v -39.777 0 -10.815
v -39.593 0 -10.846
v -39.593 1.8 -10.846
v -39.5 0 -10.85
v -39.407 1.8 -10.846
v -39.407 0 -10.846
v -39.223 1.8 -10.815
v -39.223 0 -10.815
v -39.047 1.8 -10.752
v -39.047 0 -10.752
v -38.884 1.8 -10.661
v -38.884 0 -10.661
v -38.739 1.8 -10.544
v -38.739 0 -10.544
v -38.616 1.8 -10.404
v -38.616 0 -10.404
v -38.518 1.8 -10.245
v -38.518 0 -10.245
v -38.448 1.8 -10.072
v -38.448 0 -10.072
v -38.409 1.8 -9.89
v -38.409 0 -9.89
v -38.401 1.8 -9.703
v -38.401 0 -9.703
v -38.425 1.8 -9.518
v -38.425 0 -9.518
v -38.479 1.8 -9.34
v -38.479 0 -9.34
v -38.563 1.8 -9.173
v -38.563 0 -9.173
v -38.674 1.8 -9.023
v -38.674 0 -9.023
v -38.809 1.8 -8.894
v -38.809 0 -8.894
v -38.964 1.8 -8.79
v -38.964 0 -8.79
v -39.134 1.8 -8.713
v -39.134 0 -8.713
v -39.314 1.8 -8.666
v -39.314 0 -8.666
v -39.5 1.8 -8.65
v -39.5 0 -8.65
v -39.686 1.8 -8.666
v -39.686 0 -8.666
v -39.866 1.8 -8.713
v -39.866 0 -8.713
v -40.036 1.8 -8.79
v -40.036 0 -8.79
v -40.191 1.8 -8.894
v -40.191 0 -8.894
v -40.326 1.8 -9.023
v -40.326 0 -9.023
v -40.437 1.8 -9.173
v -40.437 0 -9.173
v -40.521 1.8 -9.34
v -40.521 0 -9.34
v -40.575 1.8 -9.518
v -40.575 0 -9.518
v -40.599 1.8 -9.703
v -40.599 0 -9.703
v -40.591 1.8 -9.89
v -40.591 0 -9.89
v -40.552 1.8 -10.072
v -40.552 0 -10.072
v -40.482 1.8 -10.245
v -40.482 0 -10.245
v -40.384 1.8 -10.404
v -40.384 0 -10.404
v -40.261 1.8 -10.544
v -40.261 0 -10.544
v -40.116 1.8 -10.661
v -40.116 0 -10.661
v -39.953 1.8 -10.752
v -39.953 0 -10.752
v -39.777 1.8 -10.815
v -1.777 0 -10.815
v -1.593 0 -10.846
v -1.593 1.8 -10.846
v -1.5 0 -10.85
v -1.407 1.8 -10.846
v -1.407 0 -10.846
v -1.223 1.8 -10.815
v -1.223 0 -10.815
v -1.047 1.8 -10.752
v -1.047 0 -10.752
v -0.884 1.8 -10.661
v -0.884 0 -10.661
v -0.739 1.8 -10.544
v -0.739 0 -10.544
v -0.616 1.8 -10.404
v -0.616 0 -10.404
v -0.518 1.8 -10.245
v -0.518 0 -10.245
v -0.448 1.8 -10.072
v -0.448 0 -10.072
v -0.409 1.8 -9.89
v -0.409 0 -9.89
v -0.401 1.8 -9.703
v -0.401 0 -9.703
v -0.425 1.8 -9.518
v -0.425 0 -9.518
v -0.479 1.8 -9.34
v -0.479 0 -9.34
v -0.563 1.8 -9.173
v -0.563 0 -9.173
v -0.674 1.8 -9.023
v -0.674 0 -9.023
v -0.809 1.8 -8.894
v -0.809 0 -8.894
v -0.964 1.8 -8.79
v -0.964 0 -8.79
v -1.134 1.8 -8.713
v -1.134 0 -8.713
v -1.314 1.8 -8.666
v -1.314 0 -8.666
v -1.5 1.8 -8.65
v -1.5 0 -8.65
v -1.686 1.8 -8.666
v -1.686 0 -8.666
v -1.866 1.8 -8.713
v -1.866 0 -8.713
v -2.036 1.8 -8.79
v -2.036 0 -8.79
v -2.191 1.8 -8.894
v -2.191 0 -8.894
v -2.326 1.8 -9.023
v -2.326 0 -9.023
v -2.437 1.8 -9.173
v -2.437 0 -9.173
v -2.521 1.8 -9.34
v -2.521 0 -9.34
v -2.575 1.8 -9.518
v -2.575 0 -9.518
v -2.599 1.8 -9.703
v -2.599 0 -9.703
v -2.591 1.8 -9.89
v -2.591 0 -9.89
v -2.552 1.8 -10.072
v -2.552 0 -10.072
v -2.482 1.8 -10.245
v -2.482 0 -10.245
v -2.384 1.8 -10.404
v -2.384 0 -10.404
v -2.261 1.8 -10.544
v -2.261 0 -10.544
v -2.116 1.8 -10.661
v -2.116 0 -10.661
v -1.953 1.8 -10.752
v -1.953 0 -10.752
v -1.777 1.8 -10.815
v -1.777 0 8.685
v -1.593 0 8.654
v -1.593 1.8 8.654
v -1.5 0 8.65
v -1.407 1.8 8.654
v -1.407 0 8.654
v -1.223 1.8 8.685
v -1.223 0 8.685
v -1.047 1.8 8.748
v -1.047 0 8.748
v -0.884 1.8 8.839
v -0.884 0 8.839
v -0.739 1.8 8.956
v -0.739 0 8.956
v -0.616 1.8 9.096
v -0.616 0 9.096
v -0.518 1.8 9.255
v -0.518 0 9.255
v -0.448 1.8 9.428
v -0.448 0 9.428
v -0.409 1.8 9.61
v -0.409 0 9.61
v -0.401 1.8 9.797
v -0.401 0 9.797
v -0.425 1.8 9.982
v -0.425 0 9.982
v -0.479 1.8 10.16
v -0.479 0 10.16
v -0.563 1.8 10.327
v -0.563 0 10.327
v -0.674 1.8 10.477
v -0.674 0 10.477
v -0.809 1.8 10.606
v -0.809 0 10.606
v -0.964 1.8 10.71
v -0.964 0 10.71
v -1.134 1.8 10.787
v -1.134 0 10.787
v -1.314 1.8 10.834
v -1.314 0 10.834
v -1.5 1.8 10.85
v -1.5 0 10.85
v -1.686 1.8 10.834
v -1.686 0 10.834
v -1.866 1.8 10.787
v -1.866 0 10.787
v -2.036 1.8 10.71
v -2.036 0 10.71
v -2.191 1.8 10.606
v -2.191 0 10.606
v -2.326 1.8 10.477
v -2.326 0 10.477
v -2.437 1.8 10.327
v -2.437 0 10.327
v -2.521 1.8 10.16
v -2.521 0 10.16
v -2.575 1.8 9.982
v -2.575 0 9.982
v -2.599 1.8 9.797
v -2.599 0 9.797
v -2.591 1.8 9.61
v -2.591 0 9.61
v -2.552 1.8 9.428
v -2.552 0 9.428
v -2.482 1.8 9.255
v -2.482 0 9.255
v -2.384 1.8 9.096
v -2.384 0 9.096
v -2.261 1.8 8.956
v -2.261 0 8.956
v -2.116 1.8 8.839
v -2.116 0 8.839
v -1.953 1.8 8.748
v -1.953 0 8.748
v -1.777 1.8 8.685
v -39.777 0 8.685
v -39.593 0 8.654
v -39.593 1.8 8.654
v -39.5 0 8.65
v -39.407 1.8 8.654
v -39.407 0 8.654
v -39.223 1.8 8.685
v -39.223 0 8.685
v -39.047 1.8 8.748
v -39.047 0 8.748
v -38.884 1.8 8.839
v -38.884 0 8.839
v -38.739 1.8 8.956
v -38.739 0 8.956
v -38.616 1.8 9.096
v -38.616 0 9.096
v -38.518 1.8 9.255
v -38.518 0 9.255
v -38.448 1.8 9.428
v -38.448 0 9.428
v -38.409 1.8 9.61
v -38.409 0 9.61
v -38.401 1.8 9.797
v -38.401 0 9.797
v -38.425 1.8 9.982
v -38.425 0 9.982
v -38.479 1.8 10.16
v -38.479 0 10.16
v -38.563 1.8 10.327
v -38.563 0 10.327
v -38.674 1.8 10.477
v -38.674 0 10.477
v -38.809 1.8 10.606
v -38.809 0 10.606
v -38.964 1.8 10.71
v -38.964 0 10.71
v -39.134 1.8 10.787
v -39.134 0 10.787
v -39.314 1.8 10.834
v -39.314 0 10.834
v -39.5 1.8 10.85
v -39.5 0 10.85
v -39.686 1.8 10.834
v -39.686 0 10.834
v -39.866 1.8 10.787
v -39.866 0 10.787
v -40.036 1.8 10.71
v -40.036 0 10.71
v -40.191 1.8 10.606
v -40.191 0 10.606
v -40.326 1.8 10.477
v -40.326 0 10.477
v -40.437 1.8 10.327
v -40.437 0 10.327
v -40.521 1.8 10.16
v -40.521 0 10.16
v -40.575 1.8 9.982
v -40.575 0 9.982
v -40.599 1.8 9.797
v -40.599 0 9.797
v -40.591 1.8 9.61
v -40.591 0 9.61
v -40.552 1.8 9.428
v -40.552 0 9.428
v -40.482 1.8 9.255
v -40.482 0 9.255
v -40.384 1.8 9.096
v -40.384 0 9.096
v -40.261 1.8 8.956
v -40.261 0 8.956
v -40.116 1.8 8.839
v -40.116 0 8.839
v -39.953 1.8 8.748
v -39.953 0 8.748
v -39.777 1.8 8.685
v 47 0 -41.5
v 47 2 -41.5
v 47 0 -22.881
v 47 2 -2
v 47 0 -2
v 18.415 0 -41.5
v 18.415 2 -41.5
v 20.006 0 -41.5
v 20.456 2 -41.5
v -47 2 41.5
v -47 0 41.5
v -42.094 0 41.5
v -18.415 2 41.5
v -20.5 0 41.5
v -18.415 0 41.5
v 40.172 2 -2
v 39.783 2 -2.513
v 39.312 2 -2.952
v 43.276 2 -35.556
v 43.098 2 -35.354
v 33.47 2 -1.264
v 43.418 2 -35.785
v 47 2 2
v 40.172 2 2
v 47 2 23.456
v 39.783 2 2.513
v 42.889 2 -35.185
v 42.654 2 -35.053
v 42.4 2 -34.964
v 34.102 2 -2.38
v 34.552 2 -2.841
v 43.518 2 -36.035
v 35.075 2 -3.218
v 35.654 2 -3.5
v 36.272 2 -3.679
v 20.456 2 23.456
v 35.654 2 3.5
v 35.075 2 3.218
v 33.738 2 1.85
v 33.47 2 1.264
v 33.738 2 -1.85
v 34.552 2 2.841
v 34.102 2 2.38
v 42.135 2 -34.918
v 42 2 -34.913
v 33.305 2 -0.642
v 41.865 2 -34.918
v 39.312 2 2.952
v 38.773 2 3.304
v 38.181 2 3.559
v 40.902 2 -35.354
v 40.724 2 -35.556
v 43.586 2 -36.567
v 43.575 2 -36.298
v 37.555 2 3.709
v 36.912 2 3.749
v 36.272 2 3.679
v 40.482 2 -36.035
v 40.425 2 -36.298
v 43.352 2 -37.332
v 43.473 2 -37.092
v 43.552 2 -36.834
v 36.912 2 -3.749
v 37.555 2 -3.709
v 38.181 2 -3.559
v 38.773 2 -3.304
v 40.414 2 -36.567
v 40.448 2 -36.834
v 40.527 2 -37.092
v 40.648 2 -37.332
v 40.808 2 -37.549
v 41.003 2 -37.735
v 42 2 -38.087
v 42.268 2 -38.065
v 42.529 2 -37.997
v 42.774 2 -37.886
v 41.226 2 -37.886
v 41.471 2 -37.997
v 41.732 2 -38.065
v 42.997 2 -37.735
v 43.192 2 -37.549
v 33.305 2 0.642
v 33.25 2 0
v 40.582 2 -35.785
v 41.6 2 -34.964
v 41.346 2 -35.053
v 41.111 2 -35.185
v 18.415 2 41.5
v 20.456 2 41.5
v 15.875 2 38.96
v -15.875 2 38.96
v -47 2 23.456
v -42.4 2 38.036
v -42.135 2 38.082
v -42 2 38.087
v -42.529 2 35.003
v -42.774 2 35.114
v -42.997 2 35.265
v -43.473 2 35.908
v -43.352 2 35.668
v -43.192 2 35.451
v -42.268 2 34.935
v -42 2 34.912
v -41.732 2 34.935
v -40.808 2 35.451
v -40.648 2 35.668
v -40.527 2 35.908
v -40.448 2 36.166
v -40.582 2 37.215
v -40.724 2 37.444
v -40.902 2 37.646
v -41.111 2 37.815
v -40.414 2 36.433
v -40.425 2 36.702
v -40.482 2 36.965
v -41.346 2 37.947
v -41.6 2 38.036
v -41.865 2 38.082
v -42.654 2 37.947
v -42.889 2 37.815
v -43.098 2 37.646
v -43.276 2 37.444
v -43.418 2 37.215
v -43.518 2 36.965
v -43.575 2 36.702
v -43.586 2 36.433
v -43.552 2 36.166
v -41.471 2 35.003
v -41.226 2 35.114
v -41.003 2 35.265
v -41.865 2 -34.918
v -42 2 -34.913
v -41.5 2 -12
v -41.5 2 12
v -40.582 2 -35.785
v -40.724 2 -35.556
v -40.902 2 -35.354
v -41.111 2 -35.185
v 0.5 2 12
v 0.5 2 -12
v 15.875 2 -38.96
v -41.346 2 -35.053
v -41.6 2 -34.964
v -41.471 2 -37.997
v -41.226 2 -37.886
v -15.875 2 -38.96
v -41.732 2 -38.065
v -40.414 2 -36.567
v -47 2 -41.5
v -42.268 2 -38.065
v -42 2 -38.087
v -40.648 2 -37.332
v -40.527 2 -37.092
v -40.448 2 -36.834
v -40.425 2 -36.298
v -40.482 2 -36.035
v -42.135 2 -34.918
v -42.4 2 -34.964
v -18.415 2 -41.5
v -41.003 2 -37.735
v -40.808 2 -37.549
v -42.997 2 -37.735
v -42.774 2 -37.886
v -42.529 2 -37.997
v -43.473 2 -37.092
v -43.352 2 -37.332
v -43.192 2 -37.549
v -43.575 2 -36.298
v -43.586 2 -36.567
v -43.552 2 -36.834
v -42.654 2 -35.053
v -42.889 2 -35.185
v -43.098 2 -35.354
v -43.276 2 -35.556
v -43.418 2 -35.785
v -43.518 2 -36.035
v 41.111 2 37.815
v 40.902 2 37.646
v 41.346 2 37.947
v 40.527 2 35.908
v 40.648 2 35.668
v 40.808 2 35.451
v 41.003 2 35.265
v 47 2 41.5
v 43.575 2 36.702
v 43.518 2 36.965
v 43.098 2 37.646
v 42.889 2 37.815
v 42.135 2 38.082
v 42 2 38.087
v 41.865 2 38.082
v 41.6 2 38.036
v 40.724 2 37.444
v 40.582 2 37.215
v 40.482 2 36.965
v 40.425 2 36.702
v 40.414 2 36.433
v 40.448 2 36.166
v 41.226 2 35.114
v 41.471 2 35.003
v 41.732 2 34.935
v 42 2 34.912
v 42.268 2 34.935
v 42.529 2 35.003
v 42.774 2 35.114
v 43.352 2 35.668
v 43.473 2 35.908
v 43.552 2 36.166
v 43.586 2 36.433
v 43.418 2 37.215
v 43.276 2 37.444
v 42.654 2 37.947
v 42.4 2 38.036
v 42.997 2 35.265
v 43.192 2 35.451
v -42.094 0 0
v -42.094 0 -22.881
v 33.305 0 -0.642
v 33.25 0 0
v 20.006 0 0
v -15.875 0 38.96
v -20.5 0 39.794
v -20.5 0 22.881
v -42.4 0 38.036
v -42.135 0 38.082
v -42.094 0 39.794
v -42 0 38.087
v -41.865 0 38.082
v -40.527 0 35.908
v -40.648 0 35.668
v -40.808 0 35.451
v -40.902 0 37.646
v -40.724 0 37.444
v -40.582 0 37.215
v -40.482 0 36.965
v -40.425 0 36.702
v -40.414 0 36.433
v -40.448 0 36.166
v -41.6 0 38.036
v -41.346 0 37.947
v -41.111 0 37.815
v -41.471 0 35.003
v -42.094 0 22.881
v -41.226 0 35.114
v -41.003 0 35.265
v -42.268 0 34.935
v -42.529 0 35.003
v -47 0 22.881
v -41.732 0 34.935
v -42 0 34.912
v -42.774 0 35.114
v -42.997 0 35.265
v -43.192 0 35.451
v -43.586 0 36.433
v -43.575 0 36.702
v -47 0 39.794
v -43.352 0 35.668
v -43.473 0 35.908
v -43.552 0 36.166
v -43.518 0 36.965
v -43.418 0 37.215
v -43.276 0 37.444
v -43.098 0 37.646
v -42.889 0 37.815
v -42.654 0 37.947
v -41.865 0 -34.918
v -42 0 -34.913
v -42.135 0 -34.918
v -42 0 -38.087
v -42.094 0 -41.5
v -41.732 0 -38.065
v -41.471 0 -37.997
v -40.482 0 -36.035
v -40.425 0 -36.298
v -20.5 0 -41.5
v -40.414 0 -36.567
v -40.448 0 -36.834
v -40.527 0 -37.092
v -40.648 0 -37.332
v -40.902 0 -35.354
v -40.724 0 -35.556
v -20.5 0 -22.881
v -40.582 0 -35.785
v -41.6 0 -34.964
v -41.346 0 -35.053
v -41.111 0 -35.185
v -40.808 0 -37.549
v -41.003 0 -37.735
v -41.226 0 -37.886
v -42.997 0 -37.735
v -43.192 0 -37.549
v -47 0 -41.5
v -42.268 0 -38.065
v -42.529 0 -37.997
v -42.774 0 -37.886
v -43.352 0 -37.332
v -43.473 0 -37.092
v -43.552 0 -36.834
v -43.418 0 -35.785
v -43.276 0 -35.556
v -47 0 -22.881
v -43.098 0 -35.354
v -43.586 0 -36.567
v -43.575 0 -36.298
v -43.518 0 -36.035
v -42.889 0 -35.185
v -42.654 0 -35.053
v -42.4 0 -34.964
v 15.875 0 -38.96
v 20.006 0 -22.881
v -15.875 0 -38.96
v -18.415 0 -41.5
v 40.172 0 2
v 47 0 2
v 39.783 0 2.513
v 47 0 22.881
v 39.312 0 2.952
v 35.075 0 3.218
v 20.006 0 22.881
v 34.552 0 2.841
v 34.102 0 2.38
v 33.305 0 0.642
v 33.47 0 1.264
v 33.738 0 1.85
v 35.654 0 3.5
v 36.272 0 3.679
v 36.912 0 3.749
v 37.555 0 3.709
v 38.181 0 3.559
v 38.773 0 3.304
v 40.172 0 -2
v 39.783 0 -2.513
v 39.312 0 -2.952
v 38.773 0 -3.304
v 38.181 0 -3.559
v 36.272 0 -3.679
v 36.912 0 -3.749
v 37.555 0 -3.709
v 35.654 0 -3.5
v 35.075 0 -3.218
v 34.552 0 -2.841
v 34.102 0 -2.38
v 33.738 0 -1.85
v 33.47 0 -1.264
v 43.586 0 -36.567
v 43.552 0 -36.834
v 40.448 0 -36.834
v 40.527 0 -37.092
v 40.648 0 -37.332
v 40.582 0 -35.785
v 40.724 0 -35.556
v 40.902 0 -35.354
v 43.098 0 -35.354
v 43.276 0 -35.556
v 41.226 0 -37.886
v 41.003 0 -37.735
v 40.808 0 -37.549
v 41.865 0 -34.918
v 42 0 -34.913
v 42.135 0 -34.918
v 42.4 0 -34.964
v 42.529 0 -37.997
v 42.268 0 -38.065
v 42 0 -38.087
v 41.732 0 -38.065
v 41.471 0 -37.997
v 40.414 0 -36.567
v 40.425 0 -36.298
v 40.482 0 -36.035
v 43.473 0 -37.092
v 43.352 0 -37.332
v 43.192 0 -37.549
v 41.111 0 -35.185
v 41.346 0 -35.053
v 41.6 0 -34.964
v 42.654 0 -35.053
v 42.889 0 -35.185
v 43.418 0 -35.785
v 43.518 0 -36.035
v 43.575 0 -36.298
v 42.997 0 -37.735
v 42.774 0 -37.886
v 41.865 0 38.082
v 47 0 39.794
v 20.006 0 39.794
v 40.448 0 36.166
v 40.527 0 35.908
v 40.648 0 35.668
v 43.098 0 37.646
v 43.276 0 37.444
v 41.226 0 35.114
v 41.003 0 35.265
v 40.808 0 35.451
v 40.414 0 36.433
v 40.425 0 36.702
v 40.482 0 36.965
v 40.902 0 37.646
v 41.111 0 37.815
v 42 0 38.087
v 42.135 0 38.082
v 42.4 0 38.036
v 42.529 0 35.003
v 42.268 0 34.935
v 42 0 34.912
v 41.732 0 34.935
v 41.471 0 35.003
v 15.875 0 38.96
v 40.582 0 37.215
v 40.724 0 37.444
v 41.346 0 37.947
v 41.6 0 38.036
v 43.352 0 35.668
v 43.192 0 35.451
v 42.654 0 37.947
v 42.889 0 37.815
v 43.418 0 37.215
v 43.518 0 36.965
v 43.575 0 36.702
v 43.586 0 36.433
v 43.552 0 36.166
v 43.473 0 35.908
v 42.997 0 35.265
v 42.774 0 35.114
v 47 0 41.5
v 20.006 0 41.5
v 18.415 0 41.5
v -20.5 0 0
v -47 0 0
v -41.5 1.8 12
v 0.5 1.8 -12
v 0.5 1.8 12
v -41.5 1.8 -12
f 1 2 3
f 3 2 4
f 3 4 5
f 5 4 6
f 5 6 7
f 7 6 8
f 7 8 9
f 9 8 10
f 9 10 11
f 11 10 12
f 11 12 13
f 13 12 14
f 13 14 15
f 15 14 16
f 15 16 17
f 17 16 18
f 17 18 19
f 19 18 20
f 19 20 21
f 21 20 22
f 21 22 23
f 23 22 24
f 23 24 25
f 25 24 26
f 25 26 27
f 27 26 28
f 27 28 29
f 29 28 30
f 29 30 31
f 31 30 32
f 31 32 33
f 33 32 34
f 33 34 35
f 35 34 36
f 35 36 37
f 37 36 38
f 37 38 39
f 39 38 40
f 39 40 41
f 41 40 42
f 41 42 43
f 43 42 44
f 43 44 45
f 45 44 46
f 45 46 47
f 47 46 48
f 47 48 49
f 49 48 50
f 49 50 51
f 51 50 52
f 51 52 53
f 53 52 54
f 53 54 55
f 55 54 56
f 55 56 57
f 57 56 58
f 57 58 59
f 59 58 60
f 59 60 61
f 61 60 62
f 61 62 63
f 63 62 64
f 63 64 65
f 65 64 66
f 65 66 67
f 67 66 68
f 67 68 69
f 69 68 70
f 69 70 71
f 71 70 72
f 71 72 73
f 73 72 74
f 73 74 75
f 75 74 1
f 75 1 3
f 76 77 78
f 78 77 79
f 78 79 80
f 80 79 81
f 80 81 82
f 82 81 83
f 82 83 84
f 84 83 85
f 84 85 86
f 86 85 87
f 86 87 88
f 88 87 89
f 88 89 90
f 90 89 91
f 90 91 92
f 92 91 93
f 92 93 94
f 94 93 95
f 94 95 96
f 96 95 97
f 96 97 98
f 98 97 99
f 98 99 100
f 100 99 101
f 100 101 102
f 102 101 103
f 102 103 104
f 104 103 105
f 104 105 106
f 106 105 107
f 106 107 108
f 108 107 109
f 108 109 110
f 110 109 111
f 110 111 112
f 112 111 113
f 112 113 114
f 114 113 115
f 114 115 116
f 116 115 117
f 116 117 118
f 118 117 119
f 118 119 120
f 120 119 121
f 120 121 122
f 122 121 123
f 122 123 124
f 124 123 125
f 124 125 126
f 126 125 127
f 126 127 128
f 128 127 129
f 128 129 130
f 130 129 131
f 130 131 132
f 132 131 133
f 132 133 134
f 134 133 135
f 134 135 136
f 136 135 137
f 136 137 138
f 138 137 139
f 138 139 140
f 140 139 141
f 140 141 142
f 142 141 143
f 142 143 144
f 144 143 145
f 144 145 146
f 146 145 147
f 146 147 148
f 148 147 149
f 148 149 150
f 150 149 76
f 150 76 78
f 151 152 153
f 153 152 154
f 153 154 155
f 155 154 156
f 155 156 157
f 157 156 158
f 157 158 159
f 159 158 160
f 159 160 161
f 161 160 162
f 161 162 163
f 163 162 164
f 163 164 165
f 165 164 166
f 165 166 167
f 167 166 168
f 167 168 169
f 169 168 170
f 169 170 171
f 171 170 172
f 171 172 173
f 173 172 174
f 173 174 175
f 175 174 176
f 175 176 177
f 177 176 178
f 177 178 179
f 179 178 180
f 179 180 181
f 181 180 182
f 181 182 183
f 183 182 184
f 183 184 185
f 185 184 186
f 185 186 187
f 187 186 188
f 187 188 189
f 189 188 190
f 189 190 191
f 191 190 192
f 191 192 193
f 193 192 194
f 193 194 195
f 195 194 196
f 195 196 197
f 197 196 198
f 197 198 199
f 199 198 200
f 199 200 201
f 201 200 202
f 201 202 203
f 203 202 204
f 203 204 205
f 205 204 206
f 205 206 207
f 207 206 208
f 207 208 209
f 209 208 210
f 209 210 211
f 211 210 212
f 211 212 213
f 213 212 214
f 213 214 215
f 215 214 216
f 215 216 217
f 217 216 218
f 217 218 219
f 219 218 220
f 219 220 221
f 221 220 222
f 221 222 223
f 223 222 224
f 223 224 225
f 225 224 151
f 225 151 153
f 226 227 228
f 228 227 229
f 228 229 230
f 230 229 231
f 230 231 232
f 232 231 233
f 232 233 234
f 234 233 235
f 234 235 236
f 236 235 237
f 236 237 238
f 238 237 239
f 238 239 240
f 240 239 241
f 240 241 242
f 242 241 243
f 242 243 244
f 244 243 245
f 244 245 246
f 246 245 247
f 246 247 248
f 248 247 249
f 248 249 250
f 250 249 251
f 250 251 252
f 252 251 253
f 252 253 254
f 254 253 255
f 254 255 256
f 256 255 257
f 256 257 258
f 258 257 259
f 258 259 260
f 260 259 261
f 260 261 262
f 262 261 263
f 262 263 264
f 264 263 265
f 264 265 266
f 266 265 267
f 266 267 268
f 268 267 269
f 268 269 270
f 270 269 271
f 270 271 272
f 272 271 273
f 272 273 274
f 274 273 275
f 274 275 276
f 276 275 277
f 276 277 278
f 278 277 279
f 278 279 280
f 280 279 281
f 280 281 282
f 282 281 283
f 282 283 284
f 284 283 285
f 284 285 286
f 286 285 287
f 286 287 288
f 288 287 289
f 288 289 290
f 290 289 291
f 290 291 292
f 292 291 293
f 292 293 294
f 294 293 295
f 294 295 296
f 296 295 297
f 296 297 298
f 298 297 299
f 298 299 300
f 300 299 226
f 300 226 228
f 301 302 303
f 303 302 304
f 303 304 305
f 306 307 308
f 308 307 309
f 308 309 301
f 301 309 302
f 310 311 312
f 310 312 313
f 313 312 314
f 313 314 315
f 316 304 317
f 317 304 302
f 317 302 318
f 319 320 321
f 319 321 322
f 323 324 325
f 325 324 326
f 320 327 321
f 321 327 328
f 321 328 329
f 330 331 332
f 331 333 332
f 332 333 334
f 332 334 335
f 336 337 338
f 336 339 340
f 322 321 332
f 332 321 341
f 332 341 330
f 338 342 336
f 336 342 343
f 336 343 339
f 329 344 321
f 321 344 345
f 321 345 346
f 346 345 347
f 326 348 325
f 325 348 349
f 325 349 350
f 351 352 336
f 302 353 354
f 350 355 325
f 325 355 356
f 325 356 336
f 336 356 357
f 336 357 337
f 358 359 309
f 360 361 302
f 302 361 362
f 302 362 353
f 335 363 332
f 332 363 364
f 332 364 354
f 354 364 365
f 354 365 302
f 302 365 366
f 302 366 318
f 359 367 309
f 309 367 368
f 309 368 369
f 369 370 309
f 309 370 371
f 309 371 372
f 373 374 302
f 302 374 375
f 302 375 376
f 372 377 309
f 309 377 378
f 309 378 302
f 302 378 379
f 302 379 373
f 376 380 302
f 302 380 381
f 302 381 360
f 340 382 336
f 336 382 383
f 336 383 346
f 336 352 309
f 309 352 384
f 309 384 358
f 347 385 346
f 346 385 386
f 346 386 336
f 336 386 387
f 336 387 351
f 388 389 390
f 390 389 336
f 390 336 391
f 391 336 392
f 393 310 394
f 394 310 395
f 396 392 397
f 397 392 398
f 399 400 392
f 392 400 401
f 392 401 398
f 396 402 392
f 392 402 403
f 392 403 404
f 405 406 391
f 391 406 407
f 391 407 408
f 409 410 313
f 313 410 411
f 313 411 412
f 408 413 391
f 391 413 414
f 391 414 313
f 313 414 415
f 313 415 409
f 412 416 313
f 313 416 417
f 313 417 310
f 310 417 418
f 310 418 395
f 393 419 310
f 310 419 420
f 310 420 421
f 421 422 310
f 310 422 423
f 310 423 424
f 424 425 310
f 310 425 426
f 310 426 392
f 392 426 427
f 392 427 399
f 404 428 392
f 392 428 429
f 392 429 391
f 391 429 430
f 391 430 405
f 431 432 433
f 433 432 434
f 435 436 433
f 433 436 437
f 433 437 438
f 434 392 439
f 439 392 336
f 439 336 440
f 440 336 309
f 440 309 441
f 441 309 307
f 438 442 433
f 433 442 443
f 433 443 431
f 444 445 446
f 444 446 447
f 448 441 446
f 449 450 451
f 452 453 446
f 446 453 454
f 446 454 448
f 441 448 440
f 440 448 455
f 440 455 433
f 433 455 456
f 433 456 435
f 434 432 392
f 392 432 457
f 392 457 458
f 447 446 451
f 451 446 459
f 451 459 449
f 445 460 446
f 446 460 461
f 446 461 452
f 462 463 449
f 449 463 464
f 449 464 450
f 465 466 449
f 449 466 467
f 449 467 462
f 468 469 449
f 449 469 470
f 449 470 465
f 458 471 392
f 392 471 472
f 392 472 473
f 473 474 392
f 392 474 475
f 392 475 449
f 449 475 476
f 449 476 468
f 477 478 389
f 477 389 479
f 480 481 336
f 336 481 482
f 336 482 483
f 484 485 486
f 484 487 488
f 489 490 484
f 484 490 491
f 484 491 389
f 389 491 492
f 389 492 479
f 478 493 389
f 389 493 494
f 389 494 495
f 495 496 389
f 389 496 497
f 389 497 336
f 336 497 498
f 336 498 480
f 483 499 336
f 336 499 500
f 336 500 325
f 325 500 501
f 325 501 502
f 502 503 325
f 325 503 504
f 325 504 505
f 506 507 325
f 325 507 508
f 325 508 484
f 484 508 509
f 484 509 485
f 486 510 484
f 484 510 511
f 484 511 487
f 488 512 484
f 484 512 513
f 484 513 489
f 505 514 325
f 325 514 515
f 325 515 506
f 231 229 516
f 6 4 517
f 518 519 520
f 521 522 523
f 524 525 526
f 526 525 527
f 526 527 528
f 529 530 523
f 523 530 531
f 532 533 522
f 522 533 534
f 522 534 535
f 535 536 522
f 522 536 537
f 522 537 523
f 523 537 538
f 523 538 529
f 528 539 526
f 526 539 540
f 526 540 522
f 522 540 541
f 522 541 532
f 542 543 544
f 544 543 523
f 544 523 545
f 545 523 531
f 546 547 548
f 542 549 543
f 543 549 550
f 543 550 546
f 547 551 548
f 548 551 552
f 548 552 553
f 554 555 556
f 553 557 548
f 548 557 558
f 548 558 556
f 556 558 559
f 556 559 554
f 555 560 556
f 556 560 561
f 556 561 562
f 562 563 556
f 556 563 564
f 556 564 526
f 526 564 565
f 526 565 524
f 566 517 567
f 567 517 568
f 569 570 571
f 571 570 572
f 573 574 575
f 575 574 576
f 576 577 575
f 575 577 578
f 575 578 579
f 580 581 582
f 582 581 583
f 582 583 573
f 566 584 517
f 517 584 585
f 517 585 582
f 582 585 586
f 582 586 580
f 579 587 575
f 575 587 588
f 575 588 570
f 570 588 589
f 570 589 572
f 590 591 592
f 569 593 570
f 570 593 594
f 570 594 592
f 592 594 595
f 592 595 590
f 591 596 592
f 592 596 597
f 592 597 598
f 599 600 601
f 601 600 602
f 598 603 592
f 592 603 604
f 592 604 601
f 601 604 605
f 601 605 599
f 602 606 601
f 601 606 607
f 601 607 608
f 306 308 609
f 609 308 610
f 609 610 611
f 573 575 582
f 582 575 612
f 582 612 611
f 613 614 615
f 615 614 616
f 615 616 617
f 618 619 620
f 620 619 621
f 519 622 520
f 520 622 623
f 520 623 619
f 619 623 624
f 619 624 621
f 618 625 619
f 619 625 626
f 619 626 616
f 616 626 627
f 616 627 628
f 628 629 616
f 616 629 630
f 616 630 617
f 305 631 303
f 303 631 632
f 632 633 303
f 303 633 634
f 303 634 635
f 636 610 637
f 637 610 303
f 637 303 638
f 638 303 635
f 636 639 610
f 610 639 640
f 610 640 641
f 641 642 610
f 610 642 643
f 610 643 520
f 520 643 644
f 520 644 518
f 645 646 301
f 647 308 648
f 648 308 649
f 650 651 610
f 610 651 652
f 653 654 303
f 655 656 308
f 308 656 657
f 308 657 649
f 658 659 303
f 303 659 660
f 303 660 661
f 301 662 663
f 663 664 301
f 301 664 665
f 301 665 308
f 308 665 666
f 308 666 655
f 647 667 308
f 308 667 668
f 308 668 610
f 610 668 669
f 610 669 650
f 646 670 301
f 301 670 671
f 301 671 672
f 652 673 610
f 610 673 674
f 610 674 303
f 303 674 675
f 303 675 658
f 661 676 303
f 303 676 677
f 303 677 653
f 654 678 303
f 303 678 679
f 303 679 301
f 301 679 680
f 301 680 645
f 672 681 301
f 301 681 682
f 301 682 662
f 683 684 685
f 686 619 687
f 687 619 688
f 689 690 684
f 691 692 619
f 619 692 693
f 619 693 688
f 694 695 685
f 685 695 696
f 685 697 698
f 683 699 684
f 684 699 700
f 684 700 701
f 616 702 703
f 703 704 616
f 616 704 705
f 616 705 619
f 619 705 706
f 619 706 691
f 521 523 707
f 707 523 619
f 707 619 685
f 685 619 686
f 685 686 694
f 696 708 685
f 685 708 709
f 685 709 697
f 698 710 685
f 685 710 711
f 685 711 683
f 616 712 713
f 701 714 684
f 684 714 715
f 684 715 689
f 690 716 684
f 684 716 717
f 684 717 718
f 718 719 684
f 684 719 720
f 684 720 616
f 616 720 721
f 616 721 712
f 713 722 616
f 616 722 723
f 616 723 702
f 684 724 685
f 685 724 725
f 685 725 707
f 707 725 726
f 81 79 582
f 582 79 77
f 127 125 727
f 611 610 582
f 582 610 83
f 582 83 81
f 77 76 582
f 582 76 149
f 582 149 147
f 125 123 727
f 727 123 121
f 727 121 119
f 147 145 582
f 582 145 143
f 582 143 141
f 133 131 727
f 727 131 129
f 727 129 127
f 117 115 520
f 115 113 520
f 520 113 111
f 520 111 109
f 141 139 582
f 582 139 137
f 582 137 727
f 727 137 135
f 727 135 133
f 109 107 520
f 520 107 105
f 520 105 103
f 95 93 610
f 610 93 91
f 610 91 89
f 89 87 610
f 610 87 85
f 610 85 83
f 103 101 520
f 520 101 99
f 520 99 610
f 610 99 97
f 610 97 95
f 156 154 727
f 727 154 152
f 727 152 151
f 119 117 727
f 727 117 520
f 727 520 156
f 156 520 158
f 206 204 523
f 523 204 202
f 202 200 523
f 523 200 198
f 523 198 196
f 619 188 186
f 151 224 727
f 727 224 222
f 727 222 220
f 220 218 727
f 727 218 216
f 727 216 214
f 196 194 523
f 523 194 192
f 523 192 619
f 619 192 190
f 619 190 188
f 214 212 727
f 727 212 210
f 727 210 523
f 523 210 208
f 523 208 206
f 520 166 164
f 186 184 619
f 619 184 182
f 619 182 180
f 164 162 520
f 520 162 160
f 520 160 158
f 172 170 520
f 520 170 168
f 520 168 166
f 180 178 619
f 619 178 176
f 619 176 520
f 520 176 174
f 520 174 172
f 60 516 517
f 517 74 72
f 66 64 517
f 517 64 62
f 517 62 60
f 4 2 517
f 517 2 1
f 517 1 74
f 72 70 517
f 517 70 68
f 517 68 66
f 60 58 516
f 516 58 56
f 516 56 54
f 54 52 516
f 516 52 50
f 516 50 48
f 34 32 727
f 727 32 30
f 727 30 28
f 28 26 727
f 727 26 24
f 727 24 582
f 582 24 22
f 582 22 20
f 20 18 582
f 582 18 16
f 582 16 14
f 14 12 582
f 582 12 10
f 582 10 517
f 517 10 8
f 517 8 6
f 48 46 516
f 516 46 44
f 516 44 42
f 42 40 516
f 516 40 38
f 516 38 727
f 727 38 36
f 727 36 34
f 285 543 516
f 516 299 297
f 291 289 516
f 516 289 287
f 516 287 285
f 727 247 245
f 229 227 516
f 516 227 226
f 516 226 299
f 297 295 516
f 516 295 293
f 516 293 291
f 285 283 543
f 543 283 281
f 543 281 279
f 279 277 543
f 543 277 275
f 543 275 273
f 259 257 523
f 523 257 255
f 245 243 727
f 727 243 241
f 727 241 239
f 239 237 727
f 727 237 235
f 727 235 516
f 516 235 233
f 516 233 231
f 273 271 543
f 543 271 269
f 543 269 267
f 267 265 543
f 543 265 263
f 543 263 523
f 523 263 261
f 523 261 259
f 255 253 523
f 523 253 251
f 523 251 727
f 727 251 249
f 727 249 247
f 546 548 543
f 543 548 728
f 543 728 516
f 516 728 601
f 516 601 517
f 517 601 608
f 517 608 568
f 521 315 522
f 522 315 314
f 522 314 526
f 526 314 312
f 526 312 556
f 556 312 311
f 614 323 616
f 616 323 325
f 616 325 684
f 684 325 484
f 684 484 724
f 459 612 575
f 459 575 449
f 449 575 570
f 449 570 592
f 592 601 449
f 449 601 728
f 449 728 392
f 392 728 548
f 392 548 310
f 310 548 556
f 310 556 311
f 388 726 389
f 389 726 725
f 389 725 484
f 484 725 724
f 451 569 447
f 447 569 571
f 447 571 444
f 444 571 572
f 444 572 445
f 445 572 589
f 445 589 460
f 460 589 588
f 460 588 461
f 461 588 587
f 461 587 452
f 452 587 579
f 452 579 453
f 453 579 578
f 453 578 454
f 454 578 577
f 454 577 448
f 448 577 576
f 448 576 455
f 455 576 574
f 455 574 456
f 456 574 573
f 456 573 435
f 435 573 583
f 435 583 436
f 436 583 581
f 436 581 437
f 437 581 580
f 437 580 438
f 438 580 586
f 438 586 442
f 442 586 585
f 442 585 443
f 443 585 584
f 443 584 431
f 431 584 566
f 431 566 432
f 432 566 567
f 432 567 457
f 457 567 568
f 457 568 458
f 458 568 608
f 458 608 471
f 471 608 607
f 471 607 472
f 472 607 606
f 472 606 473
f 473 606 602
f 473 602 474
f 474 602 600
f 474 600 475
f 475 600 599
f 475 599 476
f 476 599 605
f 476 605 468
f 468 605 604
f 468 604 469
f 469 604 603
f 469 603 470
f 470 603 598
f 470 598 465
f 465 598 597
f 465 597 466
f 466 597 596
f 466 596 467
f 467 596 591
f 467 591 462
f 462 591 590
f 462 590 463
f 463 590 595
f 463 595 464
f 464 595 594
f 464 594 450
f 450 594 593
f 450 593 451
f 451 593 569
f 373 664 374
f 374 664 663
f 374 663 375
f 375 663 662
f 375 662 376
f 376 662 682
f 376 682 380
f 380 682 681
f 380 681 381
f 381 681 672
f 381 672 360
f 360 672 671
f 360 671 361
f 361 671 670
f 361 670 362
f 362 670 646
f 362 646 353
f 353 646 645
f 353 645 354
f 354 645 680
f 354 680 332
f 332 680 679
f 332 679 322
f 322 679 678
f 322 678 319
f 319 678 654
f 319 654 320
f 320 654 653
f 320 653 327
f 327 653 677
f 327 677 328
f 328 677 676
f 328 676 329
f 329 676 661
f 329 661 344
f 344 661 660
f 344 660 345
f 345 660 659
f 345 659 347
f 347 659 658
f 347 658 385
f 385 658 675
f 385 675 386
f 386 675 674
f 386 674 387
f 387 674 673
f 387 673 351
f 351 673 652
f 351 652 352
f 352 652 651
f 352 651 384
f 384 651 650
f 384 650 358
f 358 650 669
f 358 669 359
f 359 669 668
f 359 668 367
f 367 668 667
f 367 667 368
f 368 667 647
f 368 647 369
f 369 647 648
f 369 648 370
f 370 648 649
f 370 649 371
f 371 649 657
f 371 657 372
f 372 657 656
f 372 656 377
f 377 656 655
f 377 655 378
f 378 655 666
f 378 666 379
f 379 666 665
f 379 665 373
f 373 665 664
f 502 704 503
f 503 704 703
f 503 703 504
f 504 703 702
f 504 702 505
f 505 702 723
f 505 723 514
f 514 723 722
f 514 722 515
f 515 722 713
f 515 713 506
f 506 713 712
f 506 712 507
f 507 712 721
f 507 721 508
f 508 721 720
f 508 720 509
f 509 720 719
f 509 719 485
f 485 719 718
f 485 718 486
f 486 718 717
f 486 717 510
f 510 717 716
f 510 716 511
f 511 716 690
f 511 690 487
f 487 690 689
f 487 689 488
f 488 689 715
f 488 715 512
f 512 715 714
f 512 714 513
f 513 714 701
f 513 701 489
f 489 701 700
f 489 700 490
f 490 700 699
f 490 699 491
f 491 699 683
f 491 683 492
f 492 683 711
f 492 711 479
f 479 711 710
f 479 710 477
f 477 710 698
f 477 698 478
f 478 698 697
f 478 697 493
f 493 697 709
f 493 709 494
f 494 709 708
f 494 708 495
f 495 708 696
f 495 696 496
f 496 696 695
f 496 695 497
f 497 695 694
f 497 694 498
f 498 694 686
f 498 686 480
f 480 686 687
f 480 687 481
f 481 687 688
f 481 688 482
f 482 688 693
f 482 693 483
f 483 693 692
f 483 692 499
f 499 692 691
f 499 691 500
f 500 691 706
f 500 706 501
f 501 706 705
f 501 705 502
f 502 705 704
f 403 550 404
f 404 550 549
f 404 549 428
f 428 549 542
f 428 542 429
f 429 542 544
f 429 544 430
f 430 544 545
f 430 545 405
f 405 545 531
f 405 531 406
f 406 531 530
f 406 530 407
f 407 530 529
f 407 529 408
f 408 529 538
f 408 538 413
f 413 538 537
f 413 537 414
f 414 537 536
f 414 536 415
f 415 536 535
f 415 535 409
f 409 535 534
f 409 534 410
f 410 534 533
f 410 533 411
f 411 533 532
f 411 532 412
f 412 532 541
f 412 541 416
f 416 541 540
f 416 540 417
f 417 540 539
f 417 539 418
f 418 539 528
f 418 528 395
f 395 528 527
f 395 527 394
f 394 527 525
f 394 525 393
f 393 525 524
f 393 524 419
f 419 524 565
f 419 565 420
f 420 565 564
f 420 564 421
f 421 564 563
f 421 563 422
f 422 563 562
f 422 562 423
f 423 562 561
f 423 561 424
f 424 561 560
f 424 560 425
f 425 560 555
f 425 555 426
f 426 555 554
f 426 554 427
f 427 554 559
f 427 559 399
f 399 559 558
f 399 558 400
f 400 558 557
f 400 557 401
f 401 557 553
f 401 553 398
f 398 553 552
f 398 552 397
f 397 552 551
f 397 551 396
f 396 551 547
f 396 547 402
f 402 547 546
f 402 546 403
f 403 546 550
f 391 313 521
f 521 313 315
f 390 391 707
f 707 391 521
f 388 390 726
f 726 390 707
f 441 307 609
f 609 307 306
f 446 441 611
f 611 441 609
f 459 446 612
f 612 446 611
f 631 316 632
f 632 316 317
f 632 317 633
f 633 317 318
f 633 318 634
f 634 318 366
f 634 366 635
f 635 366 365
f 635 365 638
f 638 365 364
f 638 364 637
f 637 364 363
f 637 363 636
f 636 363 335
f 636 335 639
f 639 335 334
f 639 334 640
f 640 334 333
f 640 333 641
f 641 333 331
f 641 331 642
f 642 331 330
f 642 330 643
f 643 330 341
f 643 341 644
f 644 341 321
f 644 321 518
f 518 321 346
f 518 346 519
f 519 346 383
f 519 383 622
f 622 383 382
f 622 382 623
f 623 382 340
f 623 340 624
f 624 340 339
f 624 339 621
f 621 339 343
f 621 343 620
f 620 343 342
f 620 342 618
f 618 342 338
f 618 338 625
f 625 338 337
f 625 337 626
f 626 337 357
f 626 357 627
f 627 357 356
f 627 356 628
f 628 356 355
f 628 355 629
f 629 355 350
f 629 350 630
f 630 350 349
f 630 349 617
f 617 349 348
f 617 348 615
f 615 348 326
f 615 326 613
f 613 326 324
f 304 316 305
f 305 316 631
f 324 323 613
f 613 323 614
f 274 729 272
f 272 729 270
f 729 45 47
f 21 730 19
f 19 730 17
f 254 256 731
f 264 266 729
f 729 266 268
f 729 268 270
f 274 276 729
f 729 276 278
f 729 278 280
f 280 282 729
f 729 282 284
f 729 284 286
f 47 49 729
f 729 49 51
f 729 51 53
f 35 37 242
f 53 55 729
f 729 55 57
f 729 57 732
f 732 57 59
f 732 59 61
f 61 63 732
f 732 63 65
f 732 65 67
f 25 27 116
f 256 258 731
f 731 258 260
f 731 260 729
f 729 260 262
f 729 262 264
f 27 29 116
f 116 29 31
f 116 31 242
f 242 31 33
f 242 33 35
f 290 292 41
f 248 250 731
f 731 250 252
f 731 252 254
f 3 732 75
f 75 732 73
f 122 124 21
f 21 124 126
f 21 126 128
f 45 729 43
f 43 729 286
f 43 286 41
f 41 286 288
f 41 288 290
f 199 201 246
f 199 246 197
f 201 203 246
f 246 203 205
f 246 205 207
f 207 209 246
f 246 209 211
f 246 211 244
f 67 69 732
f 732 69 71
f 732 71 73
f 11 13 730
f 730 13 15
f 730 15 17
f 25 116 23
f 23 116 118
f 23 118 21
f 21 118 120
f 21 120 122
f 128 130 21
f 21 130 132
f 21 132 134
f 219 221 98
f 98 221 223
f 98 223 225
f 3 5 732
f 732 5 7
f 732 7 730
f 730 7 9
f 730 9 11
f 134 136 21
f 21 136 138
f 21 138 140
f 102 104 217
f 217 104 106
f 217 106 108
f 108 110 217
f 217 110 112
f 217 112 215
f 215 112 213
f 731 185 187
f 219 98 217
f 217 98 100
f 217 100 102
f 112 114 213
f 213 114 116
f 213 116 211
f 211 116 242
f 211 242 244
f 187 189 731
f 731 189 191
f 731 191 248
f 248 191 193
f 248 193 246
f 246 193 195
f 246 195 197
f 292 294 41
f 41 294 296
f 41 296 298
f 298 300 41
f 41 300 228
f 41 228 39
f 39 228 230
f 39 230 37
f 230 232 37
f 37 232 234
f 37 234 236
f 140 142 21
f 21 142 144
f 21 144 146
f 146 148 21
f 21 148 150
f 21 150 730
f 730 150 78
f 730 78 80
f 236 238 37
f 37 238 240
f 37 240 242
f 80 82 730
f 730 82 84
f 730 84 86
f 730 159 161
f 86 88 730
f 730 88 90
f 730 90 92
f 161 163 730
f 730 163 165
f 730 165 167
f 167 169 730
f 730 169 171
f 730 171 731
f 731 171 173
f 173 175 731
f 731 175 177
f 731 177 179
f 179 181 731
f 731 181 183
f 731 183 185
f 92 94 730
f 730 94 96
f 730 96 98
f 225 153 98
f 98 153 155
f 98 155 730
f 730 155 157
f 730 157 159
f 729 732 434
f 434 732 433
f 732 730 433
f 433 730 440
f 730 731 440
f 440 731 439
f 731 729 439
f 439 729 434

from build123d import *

# Parameters (mm, degrees)
SKETCH1_W           = 94
SKETCH1_H           = 83
SKETCH1_R           = 1.5875
BOSS_EXTRUDE1_DEPTH = 2
SKETCH2_R           = 1.1
CUT_EXTRUDE1_DEPTH  = 10
SKETCH3_W           = 42
SKETCH3_H           = 24
CUT_EXTRUDE2_DEPTH  = 0.2


with BuildPart() as part:
    # Sketch1 → Boss-Extrude1 (new body)
    with BuildSketch(Plane(origin=(0, 0, 0), x_dir=(1, 0, 0), z_dir=(0, 1, 0))):
        Rectangle(SKETCH1_W, SKETCH1_H)
        with Locations((-42, 36.5)):
            Circle(SKETCH1_R, mode=Mode.SUBTRACT)
        with Locations((42, 36.5)):
            Circle(SKETCH1_R, mode=Mode.SUBTRACT)
        with Locations((42, -36.5)):
            Circle(SKETCH1_R, mode=Mode.SUBTRACT)
        with Locations((-42, -36.5)):
            Circle(SKETCH1_R, mode=Mode.SUBTRACT)
    extrude(amount=BOSS_EXTRUDE1_DEPTH)

    # Sketch2 → Cut-Extrude1 (cut)
    with BuildSketch(Plane(origin=(0, 2, 0), x_dir=(1, 0, 0), z_dir=(0, 1, 0))):
        with Locations((-39.5, 9.75)):
            Circle(SKETCH2_R)
        with Locations((-1.5, 9.75)):
            Circle(SKETCH2_R)
        with Locations((-1.5, -9.75)):
            Circle(SKETCH2_R)
        with Locations((-39.5, -9.75)):
            Circle(SKETCH2_R)
        with BuildLine():
            Line((40.172144385, 2), (47, 2))
            Line((47, 2), (47, -2))
            Line((47, -2), (40.172144385, -2))
            ThreePointArc((40.172144385, -2), (33.25, 0), (40.172144385, 2))
        make_face()
        Polygon((-18.415, -41.5), (-15.875, -38.96), (15.875, -38.96), (18.415, -41.5), align=None)
        Polygon((-18.415, 41.5), (-15.875, 38.96), (15.875, 38.96), (18.415, 41.5), align=None)
    extrude(amount=-CUT_EXTRUDE1_DEPTH, mode=Mode.SUBTRACT)

    # Sketch3 → Cut-Extrude2 (cut)
    with BuildSketch(Plane(origin=(0, 2, 0), x_dir=(1, 0, 0), z_dir=(0, 1, 0))):
        with Locations((-20.5, 0)):
            Rectangle(SKETCH3_W, SKETCH3_H)
    extrude(amount=-CUT_EXTRUDE2_DEPTH, mode=Mode.SUBTRACT)


solid = part.part
